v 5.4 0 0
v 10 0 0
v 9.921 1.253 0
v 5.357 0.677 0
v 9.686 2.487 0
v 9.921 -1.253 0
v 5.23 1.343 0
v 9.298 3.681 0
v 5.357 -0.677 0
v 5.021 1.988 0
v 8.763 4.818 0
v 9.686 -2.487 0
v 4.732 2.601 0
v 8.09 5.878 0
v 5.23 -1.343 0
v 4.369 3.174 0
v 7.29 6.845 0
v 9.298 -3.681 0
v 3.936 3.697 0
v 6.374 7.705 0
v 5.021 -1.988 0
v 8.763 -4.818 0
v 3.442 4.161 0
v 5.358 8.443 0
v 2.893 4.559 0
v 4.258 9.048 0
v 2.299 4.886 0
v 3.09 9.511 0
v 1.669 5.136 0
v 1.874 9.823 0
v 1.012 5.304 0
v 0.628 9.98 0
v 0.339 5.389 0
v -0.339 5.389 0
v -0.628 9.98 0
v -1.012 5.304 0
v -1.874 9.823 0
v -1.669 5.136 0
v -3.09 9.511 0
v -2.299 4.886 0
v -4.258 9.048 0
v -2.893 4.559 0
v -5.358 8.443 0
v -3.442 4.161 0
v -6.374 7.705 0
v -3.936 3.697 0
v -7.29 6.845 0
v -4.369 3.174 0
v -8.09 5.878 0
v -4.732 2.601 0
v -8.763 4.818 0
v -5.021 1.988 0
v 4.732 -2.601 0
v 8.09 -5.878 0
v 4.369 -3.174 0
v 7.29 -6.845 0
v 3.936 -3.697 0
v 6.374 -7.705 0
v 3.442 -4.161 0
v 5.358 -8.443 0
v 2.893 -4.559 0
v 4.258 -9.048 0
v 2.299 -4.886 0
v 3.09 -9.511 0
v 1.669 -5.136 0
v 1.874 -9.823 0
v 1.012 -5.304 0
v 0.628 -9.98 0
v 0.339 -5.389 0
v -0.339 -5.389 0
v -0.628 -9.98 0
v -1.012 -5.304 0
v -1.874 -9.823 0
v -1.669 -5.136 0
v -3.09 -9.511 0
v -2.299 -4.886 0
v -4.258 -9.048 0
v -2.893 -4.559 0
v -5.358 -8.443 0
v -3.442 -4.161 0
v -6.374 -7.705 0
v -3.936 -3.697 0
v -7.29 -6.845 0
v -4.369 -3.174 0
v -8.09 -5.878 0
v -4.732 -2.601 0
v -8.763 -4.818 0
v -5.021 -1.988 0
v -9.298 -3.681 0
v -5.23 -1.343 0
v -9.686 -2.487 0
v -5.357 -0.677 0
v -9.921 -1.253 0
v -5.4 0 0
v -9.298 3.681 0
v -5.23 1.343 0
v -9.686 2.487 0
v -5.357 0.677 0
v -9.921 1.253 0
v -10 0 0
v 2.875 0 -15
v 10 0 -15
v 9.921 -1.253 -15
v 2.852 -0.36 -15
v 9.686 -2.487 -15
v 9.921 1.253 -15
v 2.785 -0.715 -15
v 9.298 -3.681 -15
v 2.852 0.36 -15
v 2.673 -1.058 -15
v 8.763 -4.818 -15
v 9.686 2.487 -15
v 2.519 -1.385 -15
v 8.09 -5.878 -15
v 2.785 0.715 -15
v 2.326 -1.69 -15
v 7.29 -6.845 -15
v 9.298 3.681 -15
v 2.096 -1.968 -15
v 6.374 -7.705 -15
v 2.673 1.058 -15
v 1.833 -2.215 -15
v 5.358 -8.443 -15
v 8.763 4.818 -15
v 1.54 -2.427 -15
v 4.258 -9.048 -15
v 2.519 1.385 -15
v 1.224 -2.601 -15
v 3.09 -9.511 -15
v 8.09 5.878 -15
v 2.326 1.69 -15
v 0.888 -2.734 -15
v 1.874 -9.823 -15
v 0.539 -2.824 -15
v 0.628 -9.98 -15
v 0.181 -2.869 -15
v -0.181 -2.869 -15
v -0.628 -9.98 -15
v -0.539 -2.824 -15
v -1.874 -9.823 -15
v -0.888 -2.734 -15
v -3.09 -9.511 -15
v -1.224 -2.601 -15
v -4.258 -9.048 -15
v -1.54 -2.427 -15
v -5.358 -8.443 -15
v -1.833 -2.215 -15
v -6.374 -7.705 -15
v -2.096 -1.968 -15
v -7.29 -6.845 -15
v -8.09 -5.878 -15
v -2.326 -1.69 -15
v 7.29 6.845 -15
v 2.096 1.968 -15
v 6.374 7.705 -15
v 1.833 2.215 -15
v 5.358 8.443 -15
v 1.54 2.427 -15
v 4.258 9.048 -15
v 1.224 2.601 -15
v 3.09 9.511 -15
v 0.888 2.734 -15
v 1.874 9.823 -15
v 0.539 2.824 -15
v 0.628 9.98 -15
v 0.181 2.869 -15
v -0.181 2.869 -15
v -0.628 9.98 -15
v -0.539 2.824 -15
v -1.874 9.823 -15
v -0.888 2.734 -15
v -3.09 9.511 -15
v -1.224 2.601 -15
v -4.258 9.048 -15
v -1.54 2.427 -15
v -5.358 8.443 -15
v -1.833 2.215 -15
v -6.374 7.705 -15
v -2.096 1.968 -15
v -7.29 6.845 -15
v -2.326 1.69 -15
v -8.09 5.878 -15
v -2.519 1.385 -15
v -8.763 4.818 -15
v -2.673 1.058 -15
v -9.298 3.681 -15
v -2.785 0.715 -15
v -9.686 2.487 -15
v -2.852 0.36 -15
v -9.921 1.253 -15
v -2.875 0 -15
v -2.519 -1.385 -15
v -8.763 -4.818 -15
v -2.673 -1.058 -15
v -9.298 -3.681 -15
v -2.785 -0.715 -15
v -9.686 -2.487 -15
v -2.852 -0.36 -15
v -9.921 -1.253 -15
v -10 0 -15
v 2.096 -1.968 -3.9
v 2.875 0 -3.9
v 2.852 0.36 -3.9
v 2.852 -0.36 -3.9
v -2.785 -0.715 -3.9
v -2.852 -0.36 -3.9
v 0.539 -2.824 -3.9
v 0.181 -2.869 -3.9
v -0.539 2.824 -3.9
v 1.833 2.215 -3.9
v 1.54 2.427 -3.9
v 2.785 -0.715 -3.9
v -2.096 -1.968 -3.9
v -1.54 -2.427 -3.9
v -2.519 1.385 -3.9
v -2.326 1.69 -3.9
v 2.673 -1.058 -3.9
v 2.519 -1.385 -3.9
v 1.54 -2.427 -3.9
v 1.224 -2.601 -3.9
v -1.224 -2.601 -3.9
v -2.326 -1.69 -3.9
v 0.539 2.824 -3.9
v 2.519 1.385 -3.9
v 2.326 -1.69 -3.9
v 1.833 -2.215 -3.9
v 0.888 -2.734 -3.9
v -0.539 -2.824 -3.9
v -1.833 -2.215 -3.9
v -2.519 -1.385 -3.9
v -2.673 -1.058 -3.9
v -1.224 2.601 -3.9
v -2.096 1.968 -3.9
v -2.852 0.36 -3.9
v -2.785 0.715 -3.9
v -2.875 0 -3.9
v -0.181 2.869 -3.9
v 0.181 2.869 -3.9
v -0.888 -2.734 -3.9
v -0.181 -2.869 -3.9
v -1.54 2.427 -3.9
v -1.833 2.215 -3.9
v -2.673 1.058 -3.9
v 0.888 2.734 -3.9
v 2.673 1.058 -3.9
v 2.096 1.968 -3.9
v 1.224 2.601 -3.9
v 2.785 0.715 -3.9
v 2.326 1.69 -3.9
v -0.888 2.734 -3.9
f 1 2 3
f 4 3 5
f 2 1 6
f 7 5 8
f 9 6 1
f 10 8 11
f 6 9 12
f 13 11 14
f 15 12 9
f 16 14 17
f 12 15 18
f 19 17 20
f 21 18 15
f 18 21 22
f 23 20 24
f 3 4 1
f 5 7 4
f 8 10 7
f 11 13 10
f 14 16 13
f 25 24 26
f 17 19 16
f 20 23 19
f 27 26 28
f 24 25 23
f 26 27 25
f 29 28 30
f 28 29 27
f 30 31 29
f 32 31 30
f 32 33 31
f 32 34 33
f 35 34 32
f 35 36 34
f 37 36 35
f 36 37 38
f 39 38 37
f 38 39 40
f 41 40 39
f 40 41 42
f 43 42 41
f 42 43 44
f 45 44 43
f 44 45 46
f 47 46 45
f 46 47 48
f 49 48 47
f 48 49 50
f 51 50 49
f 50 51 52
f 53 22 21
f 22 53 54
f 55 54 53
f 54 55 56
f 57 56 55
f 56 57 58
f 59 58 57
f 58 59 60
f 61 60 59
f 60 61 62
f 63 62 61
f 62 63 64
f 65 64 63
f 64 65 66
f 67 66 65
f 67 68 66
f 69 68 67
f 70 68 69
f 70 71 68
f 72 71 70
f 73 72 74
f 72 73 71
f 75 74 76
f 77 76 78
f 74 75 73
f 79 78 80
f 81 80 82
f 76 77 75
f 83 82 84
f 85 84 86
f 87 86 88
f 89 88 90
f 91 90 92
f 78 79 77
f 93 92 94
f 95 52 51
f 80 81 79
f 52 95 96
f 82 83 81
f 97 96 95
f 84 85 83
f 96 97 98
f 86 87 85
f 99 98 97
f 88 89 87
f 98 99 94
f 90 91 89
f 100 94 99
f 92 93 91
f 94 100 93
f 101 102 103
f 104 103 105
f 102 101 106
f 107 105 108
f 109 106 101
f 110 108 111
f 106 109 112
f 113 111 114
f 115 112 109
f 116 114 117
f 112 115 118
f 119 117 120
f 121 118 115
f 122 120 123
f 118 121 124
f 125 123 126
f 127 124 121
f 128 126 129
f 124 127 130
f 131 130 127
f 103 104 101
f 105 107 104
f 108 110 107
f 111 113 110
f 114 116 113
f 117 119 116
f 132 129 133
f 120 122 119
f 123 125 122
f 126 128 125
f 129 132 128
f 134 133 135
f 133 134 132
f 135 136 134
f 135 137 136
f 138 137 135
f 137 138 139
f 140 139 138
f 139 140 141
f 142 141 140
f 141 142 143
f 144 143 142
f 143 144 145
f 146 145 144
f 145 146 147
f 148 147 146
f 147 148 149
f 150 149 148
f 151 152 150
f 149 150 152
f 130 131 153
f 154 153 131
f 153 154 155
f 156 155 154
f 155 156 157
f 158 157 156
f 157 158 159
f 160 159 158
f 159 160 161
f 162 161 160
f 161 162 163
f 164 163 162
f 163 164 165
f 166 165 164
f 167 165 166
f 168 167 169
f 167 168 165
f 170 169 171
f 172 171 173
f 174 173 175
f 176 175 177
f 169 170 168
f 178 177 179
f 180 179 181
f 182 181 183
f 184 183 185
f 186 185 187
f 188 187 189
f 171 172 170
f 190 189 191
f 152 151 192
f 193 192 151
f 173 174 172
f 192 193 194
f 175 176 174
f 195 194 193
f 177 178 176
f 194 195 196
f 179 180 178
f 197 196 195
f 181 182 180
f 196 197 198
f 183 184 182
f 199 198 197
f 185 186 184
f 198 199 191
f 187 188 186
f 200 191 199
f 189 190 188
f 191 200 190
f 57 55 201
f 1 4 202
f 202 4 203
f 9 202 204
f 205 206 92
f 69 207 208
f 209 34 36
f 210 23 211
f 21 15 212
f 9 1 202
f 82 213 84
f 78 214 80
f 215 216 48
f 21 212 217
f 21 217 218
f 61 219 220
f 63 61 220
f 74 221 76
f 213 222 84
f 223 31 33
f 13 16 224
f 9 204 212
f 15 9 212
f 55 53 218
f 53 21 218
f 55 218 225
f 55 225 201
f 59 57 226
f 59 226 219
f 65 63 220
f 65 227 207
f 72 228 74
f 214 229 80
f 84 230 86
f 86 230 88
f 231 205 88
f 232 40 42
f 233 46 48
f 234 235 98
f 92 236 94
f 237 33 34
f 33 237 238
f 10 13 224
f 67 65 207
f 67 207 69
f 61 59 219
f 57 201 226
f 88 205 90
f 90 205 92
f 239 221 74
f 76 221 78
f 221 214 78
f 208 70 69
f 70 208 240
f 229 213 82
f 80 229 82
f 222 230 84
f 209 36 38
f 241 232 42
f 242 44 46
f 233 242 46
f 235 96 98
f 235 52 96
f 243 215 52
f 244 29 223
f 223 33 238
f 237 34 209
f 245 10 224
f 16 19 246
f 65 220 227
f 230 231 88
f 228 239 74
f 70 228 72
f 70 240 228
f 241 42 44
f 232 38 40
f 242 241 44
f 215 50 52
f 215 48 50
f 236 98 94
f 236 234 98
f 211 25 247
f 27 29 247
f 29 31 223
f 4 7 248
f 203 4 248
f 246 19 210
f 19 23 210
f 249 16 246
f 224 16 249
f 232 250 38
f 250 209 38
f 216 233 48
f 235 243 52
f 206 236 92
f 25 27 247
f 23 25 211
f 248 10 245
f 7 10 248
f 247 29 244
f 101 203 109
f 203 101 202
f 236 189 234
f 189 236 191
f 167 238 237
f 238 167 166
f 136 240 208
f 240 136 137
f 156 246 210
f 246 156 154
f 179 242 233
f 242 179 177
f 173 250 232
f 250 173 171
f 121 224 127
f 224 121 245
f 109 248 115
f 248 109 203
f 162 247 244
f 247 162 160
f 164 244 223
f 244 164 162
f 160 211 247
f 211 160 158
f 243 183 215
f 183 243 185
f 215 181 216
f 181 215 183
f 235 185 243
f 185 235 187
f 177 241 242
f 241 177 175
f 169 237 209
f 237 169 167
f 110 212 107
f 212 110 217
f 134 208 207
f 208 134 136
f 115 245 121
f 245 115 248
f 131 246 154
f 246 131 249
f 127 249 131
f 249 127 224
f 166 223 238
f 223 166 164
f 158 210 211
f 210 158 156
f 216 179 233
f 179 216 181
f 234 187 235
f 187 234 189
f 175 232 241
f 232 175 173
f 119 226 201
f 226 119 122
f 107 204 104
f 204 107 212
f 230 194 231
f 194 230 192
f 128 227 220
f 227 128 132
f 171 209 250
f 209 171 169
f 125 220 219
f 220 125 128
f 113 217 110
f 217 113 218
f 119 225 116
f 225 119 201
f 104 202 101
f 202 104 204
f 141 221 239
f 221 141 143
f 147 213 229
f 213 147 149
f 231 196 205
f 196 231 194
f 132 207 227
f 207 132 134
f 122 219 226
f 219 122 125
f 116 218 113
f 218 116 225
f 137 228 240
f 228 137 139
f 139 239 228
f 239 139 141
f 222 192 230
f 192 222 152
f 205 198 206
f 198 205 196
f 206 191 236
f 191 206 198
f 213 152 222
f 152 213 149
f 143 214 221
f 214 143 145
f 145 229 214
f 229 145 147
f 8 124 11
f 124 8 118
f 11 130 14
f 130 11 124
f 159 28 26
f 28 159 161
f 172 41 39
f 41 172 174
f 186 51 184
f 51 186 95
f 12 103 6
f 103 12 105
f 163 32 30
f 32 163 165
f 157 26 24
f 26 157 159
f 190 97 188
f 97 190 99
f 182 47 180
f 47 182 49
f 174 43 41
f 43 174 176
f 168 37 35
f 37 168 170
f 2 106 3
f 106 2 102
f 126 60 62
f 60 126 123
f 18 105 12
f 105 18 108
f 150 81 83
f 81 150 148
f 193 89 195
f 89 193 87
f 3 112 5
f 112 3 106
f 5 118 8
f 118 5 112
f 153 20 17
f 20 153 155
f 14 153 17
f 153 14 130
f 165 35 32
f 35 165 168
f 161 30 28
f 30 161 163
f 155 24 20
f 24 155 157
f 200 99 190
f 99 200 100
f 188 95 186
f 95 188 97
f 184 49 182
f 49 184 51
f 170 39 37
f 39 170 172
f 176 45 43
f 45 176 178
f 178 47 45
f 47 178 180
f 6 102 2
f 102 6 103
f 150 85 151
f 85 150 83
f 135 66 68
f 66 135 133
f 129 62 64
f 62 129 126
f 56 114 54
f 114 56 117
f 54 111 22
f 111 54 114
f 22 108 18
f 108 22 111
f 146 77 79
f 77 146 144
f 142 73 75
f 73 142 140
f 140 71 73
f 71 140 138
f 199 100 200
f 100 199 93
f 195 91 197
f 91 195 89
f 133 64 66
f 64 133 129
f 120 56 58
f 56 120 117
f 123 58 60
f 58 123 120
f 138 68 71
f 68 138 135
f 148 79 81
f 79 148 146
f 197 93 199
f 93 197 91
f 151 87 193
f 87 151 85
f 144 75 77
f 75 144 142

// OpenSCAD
$fn = 50;


difference() {
	union() {
		translate(v = [0, 0, -15.0000000000]) {
			cylinder(h = 15, r = 10.0000000000);
		}
	}
	union() {
		translate(v = [0, 0, 0]) {
			rotate(a = [0, 0, 0]) {
				difference() {
					union() {
						#translate(v = [0, 0, -15.0000000000]) {
							cylinder(h = 15, r = 2.6000000000);
						}
						#translate(v = [0, 0, -3.9000000000]) {
							cylinder(h = 3.9000000000, r = 10.0000000000, r1 = 2.8750000000, r2 = 5.4000000000);
						}
						#translate(v = [0, 0, -15.0000000000]) {
							cylinder(h = 15, r = 2.8750000000);
						}
						#translate(v = [0, 0, -15.0000000000]) {
							cylinder(h = 15, r = 2.6000000000);
						}
					}
					union();
				}
			}
		}
	}
}
